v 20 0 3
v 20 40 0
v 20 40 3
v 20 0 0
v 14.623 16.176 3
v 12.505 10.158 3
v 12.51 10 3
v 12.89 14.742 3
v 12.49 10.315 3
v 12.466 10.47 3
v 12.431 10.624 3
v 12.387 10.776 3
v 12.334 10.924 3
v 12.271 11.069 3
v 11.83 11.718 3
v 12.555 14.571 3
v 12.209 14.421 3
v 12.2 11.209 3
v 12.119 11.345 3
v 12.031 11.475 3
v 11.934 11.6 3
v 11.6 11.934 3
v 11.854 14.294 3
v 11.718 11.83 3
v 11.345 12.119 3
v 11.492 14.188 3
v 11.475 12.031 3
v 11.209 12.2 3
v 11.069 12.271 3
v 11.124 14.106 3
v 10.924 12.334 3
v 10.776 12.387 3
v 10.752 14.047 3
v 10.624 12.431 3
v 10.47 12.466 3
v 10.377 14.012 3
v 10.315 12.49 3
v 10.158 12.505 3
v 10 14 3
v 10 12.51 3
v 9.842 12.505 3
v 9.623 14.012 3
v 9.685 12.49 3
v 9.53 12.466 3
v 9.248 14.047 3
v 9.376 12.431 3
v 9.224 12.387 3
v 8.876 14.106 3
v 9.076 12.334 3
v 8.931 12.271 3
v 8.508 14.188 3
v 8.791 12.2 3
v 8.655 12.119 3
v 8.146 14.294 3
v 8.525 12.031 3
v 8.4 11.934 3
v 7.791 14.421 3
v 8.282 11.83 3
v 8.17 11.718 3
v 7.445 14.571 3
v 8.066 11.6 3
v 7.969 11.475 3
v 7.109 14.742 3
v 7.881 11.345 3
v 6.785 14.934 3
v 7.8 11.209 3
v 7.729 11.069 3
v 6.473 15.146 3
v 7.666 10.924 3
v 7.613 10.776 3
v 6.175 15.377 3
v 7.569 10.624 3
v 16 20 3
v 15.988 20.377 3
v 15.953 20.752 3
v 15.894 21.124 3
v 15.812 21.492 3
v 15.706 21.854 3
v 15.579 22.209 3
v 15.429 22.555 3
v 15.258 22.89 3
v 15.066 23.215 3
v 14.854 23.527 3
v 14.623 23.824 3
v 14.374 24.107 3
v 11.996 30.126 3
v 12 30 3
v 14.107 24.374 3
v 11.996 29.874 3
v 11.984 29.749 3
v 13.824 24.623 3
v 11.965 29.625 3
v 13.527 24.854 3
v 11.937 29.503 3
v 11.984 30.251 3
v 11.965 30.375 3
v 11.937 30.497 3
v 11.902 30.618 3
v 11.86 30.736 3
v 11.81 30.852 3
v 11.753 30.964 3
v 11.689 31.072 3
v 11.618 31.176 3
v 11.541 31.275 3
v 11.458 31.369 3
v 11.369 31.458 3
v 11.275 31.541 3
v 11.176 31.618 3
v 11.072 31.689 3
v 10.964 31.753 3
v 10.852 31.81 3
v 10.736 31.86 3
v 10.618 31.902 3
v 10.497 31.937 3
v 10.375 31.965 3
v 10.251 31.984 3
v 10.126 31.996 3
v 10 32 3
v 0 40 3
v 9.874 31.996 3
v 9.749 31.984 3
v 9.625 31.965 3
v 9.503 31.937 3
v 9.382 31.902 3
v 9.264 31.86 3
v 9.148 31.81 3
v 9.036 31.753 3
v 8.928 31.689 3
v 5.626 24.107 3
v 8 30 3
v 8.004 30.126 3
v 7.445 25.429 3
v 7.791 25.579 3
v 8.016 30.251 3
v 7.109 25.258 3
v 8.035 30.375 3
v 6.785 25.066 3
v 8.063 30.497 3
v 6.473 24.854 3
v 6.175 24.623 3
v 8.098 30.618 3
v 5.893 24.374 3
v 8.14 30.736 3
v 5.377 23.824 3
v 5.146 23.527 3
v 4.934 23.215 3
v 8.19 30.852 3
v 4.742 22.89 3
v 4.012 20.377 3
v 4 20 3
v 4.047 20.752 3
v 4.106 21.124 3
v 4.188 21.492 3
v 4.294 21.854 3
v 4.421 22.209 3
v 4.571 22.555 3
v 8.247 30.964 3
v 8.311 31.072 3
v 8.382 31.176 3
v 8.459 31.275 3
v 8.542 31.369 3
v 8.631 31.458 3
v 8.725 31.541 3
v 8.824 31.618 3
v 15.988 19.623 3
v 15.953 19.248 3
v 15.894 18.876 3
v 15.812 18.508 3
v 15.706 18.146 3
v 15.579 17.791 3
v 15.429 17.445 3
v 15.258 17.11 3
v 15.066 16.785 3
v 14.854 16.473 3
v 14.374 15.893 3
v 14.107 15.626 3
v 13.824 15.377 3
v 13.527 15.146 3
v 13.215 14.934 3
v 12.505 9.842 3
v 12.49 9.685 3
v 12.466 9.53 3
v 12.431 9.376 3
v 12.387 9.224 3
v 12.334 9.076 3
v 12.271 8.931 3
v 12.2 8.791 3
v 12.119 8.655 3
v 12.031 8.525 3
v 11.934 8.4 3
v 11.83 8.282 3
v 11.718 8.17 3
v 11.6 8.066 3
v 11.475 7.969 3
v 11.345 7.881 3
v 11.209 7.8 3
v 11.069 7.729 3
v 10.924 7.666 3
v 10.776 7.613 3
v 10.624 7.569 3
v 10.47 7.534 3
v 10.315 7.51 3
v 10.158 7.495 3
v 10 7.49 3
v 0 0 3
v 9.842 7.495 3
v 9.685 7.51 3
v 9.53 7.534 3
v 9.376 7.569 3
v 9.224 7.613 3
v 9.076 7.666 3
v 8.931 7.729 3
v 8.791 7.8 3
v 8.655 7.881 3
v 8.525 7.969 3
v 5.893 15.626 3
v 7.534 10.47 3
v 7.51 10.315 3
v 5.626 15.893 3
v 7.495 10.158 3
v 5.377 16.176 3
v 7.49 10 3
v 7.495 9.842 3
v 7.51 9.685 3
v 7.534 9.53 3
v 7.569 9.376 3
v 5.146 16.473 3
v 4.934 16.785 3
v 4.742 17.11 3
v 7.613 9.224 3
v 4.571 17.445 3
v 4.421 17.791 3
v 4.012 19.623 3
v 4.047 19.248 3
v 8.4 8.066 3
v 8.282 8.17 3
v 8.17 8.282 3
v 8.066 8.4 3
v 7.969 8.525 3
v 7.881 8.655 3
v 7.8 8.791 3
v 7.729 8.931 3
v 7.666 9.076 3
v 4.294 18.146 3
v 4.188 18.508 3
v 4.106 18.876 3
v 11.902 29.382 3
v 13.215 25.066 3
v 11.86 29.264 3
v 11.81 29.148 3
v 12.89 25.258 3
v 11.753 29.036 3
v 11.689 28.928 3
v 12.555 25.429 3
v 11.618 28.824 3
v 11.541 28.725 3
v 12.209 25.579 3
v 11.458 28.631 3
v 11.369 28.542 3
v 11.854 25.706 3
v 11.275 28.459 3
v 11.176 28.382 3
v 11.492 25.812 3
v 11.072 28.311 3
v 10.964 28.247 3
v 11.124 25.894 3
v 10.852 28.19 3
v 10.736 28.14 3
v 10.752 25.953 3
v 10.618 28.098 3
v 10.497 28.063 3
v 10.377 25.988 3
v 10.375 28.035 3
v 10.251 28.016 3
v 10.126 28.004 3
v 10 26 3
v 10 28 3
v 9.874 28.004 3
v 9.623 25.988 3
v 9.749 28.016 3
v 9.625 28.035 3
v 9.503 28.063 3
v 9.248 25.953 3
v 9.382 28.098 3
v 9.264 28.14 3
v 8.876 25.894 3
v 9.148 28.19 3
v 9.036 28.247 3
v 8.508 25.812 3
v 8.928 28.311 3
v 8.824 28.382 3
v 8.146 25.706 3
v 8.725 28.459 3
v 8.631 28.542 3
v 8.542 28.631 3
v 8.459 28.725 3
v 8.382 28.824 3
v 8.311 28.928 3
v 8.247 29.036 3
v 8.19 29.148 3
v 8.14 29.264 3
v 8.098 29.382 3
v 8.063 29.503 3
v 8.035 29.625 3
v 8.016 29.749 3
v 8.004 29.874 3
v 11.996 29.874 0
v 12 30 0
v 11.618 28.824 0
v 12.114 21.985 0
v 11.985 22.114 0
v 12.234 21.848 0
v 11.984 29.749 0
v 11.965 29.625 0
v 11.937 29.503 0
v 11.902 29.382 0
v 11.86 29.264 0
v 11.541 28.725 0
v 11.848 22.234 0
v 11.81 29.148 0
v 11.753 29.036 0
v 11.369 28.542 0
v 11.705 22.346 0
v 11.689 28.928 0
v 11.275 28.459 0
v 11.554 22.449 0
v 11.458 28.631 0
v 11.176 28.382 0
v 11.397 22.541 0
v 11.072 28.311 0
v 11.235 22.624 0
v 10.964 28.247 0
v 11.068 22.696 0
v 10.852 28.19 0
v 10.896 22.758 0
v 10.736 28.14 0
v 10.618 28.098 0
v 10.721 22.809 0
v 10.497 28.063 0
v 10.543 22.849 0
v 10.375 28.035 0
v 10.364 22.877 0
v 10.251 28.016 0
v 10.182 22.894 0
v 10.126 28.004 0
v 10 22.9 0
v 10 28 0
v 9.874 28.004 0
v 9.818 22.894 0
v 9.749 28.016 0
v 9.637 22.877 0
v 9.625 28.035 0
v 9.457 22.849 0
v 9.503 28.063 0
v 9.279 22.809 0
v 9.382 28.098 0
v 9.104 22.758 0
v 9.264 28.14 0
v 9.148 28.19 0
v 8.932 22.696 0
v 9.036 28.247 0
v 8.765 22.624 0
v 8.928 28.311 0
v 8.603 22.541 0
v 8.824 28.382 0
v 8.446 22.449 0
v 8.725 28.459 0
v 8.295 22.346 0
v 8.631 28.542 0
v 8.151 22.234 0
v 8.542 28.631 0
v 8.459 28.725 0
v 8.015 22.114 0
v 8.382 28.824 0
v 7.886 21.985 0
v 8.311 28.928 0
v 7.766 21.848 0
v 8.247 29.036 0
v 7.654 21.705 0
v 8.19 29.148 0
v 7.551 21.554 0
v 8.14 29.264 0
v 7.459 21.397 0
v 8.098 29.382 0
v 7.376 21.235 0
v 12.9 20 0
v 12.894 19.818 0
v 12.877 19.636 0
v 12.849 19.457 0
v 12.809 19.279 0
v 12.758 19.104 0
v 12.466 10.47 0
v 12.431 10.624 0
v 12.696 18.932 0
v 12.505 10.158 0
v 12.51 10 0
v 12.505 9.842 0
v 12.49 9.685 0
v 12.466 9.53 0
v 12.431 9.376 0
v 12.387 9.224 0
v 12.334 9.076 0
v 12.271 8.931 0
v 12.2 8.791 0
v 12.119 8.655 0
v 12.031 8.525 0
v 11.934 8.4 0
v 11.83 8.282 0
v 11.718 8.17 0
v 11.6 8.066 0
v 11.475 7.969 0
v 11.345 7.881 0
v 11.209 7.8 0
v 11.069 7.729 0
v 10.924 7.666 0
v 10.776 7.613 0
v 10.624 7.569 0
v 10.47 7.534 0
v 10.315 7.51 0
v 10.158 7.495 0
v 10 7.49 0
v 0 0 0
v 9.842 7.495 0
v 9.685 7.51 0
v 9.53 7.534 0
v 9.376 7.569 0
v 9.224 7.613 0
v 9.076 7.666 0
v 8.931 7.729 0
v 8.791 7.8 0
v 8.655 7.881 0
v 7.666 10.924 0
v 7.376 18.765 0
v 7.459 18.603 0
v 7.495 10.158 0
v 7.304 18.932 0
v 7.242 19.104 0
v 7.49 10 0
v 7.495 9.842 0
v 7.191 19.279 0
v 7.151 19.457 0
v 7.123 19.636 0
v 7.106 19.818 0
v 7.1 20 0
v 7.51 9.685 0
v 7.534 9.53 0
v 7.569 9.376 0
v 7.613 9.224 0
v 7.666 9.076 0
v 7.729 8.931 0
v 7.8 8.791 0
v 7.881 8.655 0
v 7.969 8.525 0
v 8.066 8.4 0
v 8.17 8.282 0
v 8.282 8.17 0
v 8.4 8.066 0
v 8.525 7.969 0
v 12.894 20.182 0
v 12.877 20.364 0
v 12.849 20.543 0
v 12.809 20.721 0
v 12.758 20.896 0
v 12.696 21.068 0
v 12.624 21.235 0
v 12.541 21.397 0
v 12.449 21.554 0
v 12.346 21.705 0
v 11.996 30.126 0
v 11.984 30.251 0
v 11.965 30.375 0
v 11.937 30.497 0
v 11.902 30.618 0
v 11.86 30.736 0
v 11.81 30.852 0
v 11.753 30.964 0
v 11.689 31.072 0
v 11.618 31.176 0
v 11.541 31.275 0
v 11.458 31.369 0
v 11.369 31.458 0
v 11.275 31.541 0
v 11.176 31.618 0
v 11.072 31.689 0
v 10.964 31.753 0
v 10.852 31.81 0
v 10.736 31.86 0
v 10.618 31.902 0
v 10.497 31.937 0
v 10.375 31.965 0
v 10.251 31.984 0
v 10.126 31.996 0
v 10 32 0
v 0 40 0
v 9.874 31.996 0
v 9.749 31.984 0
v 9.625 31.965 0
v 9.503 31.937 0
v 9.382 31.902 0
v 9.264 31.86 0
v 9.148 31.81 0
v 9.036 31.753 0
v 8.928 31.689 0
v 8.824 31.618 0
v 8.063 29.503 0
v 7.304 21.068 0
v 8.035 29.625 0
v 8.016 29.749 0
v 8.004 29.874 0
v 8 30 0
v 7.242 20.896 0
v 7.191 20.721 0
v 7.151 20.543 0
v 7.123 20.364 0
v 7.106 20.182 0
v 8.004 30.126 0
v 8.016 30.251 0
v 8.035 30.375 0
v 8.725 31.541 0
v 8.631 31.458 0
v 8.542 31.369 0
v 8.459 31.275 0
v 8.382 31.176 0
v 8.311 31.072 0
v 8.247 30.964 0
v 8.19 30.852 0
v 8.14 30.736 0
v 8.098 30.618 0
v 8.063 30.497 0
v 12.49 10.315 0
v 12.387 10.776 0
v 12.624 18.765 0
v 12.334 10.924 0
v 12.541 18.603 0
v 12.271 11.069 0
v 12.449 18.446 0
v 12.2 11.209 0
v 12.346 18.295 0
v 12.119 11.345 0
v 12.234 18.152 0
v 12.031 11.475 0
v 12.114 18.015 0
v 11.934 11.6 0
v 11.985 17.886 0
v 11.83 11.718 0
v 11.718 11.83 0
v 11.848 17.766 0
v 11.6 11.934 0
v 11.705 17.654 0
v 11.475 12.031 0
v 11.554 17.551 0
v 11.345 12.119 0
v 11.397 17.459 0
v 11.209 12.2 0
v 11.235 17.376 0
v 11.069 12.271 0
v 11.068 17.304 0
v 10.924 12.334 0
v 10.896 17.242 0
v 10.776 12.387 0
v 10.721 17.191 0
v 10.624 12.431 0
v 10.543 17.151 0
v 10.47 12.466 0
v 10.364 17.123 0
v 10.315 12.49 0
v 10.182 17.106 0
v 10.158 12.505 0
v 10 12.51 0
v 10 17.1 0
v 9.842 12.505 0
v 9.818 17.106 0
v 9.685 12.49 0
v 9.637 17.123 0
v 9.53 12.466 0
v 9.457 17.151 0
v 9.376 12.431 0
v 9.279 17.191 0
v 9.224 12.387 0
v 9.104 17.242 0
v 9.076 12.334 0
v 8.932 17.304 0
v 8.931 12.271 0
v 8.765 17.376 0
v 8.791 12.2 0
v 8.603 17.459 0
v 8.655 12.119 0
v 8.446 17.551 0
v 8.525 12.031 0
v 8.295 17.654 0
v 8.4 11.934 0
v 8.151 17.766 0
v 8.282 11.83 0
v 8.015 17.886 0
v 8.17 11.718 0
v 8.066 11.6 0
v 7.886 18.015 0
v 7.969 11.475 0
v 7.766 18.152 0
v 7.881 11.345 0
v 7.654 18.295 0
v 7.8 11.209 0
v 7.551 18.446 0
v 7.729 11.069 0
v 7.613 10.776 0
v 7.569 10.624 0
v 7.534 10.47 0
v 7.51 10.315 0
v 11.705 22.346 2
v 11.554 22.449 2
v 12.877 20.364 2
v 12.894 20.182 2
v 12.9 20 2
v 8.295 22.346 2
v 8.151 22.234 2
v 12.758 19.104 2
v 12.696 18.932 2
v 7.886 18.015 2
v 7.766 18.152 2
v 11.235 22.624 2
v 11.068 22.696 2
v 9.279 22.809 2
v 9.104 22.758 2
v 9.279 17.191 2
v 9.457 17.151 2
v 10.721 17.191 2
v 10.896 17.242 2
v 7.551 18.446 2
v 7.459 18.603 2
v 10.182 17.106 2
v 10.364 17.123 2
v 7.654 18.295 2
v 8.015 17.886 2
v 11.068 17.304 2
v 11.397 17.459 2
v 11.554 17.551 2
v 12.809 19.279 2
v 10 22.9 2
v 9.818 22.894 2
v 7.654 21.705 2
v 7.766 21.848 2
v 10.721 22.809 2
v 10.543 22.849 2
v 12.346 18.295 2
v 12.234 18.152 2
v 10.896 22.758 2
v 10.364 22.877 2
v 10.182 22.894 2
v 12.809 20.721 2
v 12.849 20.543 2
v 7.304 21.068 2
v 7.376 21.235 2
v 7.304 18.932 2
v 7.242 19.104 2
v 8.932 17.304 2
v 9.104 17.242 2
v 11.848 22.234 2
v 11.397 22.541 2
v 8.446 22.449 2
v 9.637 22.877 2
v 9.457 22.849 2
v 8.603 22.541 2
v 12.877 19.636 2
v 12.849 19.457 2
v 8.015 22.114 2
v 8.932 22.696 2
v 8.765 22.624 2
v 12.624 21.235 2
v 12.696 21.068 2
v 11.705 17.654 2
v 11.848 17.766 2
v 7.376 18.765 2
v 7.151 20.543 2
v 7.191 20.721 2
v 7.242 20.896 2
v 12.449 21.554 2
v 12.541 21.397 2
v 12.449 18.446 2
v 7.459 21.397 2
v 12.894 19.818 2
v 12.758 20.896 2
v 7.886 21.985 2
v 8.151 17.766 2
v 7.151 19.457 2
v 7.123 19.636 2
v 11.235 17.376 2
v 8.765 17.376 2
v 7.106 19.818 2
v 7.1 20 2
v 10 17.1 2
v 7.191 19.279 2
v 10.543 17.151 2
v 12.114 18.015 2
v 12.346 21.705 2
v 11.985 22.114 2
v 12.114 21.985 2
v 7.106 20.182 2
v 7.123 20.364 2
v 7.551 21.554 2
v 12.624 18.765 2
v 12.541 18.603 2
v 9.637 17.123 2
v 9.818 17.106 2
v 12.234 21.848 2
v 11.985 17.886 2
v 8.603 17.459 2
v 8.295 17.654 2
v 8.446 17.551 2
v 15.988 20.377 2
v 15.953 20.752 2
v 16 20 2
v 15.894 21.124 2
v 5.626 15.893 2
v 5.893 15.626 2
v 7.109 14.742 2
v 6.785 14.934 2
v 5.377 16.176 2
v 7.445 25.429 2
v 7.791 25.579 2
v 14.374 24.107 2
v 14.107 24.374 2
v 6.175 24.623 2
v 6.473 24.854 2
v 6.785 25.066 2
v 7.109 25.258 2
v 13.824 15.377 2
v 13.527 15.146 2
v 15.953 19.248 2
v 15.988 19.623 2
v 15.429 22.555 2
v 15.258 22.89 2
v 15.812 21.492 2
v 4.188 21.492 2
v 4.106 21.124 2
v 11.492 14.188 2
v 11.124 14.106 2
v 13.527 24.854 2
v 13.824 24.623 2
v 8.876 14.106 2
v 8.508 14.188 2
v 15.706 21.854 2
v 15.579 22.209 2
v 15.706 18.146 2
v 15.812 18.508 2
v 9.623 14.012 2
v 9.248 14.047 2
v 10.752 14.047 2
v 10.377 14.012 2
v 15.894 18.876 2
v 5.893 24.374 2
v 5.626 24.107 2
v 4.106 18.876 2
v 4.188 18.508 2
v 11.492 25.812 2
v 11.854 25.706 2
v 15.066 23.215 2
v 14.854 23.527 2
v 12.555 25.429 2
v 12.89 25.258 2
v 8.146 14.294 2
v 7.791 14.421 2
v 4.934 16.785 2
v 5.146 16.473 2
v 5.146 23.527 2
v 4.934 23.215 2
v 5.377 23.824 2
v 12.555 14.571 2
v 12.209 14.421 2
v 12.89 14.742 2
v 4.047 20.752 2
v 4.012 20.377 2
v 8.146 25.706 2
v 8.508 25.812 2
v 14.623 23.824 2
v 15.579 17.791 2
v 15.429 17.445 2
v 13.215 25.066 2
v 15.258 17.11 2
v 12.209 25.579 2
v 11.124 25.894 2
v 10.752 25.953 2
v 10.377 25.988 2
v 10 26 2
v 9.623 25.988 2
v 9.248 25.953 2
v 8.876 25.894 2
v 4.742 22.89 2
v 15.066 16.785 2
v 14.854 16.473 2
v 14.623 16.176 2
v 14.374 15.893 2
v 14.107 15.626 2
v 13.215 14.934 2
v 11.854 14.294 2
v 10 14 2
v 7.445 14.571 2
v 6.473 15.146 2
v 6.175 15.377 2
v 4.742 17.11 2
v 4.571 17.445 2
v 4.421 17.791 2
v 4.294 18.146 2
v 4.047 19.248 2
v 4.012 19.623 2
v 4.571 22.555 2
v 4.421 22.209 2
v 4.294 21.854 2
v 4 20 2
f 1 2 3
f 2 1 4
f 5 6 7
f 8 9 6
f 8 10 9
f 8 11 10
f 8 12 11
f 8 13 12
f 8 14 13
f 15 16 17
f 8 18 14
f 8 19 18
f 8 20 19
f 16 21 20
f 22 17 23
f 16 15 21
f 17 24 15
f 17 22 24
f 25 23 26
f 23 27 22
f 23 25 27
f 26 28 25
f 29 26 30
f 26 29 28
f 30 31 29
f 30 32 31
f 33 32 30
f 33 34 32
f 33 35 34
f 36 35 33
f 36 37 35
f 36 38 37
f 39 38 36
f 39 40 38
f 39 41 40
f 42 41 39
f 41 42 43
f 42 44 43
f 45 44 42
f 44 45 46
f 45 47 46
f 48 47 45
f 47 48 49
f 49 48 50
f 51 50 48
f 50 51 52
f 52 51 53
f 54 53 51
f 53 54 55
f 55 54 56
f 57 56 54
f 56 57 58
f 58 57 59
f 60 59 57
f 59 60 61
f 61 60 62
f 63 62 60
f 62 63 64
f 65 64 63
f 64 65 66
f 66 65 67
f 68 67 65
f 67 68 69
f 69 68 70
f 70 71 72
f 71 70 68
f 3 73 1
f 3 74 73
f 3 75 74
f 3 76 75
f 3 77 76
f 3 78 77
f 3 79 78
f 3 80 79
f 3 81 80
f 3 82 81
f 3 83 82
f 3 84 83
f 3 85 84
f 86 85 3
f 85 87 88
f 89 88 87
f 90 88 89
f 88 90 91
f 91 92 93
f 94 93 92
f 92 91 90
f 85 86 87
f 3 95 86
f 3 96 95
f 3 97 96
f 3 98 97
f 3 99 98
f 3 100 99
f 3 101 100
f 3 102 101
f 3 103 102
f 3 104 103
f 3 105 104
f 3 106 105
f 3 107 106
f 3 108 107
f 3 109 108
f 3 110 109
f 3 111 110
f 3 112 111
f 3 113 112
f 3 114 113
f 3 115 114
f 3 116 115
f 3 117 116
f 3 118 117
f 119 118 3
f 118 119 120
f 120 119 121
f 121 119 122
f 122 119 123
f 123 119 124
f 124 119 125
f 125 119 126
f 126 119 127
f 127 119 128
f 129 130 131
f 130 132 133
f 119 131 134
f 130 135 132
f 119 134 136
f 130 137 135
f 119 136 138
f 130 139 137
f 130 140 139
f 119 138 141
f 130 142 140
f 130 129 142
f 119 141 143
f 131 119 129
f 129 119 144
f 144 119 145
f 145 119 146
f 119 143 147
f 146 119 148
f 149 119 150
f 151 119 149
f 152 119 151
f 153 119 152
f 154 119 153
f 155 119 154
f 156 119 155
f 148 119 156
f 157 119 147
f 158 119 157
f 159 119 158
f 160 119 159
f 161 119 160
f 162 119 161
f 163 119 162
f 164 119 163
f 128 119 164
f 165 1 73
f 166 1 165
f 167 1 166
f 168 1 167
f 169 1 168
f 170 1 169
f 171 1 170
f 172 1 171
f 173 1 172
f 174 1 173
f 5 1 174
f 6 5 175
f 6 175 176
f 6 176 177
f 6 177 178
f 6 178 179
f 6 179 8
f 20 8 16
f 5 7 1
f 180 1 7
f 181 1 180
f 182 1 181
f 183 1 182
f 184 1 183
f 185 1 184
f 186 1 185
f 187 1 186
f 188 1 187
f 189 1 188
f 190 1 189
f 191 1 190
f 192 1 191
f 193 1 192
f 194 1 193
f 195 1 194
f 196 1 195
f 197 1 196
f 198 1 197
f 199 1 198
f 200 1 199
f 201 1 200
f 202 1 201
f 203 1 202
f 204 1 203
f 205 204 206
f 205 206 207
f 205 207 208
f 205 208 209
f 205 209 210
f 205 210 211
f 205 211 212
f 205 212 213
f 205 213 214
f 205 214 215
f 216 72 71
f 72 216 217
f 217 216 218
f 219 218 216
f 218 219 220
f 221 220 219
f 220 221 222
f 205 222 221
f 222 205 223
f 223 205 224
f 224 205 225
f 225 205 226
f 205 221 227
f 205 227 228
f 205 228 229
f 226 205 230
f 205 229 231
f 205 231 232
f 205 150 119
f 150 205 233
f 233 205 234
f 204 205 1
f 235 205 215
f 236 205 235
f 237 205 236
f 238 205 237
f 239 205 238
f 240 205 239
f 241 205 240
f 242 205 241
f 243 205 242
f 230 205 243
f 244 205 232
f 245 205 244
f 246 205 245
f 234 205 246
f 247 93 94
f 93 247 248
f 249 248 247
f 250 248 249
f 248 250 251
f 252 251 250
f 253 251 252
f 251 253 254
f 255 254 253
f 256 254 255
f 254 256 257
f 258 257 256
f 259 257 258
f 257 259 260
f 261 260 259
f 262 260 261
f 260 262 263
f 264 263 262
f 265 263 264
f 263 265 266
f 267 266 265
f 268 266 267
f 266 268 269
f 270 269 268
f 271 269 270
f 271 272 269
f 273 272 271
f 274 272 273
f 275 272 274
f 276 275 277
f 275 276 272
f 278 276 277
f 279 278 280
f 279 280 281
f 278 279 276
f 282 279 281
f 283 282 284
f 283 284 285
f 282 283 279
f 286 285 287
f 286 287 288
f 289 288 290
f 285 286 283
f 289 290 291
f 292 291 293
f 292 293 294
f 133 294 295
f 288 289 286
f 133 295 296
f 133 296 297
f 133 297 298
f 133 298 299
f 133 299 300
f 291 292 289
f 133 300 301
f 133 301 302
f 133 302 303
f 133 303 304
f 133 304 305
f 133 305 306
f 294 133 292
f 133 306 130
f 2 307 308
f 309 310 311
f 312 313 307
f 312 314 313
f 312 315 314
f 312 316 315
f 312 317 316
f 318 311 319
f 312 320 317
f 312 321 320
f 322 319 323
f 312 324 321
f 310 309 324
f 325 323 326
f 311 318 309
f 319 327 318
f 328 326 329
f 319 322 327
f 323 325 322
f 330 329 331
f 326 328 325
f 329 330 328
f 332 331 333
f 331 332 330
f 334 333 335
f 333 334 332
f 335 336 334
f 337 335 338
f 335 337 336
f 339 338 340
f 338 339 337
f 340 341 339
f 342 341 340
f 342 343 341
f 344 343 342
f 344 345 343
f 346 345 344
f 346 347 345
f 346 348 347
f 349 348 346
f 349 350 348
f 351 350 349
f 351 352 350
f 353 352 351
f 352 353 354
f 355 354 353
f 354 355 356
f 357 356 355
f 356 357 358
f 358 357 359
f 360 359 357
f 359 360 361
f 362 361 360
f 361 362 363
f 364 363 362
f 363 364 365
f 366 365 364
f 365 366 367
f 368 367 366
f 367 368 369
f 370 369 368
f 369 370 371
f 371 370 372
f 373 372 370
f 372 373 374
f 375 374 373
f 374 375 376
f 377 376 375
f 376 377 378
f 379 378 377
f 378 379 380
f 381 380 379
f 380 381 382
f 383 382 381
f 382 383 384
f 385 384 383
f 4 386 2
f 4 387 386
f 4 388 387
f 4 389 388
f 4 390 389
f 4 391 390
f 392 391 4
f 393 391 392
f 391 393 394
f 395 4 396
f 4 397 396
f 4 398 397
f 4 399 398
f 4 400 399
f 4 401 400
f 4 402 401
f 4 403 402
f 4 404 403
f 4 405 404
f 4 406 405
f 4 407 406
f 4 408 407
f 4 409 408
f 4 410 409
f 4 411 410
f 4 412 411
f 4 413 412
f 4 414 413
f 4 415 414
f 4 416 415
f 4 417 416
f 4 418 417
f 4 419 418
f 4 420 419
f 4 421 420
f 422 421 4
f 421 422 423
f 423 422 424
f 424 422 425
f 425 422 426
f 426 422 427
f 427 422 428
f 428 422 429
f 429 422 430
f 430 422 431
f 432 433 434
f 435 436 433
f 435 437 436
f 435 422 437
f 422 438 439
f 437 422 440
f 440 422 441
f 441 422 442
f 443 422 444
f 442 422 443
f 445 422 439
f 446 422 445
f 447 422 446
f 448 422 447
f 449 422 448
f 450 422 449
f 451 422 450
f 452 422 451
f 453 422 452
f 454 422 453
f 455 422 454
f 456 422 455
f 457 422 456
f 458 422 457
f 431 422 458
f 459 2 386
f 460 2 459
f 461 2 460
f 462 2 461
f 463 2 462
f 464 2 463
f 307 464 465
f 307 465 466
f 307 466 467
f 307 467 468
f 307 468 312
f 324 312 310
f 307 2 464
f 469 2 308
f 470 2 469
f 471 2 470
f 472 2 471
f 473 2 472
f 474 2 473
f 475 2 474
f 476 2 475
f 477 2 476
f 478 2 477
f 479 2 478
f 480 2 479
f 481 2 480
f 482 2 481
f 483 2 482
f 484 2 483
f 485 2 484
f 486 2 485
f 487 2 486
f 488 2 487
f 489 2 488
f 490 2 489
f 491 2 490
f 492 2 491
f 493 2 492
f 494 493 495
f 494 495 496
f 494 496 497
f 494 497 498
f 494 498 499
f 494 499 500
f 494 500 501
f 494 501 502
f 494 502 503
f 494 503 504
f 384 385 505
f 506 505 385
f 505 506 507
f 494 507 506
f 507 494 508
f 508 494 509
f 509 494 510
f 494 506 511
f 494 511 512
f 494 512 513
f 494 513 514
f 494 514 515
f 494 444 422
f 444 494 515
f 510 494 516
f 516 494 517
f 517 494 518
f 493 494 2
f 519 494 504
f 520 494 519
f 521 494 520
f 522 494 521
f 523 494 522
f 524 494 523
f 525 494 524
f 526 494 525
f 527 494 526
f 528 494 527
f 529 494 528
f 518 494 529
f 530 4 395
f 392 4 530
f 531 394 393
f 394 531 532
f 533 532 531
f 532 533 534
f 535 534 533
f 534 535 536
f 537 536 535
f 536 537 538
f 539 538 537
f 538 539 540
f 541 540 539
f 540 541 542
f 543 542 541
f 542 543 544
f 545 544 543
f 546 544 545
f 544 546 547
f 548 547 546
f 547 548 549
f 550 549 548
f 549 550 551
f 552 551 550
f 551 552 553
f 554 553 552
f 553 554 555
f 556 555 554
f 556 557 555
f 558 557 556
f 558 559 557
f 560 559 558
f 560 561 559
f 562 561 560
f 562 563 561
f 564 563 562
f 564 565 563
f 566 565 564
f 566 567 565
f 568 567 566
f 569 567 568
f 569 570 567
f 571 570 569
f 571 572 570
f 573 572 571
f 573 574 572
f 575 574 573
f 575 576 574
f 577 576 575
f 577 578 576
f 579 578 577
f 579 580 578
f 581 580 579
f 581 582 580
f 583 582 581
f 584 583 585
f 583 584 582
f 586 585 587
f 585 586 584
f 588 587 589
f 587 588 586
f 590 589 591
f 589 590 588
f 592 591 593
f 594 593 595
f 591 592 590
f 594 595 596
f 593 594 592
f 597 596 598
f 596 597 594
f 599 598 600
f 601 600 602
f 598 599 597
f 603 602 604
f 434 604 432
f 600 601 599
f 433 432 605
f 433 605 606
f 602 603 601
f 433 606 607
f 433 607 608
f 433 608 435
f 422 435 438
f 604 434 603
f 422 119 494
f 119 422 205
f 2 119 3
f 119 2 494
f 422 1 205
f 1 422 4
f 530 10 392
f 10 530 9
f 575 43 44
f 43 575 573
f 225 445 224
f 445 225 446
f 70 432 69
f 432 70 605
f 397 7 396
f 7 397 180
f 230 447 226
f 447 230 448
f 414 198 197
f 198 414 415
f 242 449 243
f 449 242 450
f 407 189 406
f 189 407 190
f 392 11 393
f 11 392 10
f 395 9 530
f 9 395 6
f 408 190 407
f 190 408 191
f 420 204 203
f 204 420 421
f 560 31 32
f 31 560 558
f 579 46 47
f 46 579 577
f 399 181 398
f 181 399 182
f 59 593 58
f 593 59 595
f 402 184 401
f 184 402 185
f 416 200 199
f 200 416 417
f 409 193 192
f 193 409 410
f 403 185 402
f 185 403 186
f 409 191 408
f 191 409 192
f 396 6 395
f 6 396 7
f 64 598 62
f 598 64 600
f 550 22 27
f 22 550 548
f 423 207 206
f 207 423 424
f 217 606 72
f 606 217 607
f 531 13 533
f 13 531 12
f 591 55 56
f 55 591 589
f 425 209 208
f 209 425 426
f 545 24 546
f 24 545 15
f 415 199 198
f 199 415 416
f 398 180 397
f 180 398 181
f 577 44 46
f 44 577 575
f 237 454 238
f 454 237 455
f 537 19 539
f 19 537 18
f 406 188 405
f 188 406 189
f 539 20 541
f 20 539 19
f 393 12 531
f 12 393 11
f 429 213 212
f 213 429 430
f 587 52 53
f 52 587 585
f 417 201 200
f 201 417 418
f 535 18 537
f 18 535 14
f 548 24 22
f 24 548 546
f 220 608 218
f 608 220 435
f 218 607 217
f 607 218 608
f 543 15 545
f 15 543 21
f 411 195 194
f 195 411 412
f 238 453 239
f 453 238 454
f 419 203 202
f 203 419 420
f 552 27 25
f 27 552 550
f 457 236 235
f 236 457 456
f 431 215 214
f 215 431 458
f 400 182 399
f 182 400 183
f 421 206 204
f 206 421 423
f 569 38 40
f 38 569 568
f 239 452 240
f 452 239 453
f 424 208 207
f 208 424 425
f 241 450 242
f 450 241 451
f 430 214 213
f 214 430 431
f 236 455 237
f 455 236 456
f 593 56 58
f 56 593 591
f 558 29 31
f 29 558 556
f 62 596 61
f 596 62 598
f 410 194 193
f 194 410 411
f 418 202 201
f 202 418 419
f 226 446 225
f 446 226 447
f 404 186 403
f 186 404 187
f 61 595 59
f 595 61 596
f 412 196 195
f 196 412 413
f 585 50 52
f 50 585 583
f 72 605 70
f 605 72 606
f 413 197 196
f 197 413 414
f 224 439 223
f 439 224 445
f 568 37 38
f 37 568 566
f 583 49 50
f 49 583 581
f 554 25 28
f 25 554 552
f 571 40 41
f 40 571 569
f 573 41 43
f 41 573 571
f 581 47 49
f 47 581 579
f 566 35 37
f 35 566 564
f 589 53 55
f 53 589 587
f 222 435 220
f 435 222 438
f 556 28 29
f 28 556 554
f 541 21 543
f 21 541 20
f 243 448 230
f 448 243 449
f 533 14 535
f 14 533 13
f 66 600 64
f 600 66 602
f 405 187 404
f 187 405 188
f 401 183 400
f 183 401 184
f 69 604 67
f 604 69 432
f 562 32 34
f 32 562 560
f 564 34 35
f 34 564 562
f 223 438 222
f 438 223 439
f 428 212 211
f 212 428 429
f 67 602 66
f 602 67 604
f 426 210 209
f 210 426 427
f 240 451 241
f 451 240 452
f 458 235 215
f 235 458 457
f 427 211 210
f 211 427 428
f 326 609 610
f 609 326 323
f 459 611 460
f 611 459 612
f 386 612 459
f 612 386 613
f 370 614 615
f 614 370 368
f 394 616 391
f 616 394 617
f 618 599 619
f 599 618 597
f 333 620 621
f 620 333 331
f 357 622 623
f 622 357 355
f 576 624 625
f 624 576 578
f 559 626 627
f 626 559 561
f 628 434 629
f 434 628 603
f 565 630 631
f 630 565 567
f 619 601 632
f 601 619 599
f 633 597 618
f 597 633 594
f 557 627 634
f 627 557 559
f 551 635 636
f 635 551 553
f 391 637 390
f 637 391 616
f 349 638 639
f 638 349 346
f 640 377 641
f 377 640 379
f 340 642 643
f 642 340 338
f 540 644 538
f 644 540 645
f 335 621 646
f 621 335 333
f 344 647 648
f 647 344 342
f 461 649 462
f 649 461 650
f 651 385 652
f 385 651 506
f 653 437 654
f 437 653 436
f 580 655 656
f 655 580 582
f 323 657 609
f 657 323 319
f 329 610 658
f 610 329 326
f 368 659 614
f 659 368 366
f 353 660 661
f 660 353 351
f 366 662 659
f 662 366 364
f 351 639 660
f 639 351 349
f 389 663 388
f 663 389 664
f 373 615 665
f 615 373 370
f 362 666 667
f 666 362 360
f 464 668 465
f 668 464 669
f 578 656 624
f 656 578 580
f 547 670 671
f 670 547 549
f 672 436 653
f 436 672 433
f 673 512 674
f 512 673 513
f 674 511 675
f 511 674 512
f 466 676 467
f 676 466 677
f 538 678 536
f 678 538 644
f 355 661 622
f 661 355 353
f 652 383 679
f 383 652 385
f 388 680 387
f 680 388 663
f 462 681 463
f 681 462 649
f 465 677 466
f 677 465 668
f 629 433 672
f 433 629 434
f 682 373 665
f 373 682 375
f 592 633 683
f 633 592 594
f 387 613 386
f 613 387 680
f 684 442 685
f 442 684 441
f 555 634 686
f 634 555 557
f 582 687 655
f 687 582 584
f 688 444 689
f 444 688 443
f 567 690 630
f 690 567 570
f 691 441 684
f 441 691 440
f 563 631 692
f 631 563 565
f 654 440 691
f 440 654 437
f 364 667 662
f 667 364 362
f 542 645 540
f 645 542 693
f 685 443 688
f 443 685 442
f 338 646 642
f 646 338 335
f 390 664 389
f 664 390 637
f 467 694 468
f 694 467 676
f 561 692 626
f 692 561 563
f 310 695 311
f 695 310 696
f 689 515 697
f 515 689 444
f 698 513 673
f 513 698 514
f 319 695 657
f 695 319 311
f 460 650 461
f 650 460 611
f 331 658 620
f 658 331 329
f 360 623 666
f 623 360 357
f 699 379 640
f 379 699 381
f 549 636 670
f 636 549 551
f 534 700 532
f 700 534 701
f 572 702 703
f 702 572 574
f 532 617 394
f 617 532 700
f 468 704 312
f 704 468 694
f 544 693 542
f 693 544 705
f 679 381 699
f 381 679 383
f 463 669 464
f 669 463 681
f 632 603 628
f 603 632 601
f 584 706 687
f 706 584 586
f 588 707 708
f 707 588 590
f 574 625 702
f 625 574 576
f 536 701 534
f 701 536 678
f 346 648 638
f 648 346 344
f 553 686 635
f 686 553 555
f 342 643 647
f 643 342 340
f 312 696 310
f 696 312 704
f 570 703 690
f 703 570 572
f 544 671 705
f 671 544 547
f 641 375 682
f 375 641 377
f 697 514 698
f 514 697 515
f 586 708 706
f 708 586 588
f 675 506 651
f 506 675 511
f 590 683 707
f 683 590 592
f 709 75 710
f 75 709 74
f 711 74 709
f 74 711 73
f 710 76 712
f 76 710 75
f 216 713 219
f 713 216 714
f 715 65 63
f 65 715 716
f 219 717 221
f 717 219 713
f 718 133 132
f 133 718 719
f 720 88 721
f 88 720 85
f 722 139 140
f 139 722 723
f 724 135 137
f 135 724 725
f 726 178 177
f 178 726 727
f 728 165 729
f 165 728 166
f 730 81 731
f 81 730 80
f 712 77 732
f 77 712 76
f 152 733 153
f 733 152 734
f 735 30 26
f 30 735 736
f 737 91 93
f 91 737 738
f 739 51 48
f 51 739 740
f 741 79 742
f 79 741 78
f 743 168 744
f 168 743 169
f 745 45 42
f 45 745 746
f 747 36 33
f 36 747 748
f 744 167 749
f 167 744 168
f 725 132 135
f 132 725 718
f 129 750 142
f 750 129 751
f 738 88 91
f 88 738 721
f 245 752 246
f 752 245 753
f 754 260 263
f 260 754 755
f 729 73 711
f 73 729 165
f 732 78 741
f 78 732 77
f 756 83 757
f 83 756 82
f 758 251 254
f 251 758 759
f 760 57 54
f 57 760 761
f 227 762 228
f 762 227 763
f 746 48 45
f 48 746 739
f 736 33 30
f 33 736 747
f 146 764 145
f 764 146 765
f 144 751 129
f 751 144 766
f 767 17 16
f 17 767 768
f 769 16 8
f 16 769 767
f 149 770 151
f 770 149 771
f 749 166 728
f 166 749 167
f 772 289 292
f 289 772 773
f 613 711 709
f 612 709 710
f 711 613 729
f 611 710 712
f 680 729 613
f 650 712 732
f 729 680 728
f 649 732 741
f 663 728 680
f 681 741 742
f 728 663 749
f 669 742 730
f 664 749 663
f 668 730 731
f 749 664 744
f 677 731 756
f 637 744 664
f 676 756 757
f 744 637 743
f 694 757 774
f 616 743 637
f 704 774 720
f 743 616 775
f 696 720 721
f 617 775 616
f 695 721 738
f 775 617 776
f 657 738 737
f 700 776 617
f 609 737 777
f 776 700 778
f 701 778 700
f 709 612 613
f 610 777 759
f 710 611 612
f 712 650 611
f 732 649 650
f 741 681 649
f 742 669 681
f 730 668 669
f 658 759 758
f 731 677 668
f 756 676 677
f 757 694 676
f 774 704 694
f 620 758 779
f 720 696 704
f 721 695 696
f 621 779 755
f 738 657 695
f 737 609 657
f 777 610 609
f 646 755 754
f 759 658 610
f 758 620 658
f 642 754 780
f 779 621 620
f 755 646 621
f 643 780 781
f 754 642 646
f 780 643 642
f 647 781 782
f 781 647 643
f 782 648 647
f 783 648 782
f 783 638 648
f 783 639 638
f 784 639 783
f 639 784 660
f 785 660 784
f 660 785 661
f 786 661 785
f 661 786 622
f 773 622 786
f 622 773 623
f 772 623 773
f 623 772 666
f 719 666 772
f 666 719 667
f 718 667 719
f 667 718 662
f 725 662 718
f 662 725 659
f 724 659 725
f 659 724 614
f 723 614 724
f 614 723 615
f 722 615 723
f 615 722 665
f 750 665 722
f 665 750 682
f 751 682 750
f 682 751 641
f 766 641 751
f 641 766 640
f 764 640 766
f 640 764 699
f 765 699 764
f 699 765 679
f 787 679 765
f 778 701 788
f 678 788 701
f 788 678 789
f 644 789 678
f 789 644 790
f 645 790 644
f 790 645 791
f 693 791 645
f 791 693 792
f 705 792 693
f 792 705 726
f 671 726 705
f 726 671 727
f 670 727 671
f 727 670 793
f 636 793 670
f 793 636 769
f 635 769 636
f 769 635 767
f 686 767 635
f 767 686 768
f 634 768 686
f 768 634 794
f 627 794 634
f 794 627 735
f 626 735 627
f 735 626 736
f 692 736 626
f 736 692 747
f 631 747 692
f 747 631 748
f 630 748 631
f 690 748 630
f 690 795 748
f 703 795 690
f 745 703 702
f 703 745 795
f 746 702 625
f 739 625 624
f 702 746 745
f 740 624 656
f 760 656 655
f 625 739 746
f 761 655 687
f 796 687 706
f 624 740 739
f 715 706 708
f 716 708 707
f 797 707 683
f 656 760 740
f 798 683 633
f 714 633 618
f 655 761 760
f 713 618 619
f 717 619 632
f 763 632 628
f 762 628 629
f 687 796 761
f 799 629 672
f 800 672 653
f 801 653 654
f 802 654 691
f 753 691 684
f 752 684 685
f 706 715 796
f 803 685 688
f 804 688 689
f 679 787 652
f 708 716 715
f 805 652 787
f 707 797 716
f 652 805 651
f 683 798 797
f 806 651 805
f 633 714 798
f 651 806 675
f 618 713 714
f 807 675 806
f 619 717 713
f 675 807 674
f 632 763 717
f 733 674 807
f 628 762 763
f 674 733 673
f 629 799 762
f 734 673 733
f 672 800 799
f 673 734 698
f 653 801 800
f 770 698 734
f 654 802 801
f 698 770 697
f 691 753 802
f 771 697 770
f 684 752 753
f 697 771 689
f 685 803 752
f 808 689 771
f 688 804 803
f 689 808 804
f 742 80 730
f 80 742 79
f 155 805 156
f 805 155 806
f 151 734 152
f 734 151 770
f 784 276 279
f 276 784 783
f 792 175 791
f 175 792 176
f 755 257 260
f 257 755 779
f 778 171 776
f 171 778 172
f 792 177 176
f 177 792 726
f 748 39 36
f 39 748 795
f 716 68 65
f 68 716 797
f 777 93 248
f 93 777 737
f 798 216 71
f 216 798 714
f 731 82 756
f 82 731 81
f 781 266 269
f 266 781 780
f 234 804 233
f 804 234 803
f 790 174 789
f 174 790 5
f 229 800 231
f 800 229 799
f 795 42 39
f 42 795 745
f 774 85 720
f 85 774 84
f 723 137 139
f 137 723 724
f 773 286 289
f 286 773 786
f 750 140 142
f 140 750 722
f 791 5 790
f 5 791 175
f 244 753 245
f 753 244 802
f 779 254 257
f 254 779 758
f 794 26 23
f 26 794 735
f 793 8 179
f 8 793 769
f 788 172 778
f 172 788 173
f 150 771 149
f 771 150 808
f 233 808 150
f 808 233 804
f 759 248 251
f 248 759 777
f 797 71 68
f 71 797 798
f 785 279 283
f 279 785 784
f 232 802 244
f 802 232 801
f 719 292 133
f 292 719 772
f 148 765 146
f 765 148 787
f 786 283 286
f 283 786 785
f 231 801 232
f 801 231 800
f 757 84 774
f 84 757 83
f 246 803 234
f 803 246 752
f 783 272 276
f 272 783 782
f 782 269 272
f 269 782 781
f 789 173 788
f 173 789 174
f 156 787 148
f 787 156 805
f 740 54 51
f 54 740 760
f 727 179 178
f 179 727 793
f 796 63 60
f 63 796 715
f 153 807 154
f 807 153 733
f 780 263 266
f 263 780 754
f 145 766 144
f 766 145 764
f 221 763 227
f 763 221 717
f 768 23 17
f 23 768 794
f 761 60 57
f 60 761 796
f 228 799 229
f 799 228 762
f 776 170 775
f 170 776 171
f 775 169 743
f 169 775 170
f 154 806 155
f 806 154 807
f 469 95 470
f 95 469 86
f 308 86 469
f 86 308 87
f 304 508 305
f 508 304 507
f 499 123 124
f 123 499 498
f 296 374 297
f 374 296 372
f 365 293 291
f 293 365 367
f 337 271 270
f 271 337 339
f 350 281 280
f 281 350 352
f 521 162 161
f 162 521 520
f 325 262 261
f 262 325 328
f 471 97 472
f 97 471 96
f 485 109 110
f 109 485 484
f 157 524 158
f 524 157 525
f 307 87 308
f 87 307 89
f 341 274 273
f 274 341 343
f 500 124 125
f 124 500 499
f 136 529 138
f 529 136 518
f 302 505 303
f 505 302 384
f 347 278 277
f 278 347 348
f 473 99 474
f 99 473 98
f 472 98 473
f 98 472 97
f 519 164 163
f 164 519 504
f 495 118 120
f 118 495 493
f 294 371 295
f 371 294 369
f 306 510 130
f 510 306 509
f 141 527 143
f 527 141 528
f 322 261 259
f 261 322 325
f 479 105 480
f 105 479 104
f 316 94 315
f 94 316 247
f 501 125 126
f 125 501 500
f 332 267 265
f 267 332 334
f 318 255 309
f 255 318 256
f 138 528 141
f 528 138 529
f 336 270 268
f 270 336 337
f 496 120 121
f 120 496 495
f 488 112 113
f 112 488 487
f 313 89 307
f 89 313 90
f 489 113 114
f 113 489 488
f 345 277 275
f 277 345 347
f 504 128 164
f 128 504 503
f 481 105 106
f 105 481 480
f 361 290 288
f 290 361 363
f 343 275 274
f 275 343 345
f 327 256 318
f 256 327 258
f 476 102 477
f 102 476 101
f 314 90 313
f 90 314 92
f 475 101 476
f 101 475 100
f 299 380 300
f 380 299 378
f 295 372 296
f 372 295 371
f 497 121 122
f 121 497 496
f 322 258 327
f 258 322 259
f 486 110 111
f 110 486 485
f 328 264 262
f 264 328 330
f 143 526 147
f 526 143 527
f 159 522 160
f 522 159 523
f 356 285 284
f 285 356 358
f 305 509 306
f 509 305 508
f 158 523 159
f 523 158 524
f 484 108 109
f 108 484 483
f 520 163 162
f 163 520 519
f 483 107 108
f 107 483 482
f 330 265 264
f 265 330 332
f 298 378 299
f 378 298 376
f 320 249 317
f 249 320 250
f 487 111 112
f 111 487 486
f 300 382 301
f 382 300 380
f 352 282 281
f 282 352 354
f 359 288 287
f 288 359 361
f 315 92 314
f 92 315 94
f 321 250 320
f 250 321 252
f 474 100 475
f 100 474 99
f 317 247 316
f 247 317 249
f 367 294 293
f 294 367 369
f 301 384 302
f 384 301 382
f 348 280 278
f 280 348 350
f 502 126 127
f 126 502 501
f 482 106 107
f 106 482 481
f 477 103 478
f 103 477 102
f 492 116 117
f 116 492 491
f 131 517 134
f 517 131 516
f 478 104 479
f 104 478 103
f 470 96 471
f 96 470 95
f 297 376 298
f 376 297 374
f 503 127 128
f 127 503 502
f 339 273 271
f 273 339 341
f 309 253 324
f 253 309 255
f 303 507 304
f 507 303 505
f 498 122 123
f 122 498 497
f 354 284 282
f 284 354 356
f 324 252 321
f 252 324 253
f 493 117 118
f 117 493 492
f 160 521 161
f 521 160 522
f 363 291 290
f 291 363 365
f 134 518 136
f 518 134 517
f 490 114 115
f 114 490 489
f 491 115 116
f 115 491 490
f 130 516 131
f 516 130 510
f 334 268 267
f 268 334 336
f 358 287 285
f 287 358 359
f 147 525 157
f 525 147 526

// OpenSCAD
$fn = 100;
difference() {
cube([20, 40, 3]);
translate([10, 10, -1]) {
    cylinder(10, 2.51, 2.51);
}
translate([10, 20, -1]) {
    cylinder(10, 2.9, 2.9);
}
translate([10, 20, 2]) {
    cylinder(2, 6, 6);
}
translate([10, 30, -1]) {
    cylinder(10, 2, 2);
}

}
/*difference() {
  cube([5, 35, 20]);
    translate([-1, 10, 12]) {
    rotate([0, 90, 0]) {
    cylinder(10, 2.51, 2.51);
    }
}

}
*/



/*difference() {
translate([40, 0, 0]) {
    cylinder(140, 5, 5);
}
translate([40, 0, 0]) {
    cylinder(160, 2.5, 2.5);
}
}
*/
